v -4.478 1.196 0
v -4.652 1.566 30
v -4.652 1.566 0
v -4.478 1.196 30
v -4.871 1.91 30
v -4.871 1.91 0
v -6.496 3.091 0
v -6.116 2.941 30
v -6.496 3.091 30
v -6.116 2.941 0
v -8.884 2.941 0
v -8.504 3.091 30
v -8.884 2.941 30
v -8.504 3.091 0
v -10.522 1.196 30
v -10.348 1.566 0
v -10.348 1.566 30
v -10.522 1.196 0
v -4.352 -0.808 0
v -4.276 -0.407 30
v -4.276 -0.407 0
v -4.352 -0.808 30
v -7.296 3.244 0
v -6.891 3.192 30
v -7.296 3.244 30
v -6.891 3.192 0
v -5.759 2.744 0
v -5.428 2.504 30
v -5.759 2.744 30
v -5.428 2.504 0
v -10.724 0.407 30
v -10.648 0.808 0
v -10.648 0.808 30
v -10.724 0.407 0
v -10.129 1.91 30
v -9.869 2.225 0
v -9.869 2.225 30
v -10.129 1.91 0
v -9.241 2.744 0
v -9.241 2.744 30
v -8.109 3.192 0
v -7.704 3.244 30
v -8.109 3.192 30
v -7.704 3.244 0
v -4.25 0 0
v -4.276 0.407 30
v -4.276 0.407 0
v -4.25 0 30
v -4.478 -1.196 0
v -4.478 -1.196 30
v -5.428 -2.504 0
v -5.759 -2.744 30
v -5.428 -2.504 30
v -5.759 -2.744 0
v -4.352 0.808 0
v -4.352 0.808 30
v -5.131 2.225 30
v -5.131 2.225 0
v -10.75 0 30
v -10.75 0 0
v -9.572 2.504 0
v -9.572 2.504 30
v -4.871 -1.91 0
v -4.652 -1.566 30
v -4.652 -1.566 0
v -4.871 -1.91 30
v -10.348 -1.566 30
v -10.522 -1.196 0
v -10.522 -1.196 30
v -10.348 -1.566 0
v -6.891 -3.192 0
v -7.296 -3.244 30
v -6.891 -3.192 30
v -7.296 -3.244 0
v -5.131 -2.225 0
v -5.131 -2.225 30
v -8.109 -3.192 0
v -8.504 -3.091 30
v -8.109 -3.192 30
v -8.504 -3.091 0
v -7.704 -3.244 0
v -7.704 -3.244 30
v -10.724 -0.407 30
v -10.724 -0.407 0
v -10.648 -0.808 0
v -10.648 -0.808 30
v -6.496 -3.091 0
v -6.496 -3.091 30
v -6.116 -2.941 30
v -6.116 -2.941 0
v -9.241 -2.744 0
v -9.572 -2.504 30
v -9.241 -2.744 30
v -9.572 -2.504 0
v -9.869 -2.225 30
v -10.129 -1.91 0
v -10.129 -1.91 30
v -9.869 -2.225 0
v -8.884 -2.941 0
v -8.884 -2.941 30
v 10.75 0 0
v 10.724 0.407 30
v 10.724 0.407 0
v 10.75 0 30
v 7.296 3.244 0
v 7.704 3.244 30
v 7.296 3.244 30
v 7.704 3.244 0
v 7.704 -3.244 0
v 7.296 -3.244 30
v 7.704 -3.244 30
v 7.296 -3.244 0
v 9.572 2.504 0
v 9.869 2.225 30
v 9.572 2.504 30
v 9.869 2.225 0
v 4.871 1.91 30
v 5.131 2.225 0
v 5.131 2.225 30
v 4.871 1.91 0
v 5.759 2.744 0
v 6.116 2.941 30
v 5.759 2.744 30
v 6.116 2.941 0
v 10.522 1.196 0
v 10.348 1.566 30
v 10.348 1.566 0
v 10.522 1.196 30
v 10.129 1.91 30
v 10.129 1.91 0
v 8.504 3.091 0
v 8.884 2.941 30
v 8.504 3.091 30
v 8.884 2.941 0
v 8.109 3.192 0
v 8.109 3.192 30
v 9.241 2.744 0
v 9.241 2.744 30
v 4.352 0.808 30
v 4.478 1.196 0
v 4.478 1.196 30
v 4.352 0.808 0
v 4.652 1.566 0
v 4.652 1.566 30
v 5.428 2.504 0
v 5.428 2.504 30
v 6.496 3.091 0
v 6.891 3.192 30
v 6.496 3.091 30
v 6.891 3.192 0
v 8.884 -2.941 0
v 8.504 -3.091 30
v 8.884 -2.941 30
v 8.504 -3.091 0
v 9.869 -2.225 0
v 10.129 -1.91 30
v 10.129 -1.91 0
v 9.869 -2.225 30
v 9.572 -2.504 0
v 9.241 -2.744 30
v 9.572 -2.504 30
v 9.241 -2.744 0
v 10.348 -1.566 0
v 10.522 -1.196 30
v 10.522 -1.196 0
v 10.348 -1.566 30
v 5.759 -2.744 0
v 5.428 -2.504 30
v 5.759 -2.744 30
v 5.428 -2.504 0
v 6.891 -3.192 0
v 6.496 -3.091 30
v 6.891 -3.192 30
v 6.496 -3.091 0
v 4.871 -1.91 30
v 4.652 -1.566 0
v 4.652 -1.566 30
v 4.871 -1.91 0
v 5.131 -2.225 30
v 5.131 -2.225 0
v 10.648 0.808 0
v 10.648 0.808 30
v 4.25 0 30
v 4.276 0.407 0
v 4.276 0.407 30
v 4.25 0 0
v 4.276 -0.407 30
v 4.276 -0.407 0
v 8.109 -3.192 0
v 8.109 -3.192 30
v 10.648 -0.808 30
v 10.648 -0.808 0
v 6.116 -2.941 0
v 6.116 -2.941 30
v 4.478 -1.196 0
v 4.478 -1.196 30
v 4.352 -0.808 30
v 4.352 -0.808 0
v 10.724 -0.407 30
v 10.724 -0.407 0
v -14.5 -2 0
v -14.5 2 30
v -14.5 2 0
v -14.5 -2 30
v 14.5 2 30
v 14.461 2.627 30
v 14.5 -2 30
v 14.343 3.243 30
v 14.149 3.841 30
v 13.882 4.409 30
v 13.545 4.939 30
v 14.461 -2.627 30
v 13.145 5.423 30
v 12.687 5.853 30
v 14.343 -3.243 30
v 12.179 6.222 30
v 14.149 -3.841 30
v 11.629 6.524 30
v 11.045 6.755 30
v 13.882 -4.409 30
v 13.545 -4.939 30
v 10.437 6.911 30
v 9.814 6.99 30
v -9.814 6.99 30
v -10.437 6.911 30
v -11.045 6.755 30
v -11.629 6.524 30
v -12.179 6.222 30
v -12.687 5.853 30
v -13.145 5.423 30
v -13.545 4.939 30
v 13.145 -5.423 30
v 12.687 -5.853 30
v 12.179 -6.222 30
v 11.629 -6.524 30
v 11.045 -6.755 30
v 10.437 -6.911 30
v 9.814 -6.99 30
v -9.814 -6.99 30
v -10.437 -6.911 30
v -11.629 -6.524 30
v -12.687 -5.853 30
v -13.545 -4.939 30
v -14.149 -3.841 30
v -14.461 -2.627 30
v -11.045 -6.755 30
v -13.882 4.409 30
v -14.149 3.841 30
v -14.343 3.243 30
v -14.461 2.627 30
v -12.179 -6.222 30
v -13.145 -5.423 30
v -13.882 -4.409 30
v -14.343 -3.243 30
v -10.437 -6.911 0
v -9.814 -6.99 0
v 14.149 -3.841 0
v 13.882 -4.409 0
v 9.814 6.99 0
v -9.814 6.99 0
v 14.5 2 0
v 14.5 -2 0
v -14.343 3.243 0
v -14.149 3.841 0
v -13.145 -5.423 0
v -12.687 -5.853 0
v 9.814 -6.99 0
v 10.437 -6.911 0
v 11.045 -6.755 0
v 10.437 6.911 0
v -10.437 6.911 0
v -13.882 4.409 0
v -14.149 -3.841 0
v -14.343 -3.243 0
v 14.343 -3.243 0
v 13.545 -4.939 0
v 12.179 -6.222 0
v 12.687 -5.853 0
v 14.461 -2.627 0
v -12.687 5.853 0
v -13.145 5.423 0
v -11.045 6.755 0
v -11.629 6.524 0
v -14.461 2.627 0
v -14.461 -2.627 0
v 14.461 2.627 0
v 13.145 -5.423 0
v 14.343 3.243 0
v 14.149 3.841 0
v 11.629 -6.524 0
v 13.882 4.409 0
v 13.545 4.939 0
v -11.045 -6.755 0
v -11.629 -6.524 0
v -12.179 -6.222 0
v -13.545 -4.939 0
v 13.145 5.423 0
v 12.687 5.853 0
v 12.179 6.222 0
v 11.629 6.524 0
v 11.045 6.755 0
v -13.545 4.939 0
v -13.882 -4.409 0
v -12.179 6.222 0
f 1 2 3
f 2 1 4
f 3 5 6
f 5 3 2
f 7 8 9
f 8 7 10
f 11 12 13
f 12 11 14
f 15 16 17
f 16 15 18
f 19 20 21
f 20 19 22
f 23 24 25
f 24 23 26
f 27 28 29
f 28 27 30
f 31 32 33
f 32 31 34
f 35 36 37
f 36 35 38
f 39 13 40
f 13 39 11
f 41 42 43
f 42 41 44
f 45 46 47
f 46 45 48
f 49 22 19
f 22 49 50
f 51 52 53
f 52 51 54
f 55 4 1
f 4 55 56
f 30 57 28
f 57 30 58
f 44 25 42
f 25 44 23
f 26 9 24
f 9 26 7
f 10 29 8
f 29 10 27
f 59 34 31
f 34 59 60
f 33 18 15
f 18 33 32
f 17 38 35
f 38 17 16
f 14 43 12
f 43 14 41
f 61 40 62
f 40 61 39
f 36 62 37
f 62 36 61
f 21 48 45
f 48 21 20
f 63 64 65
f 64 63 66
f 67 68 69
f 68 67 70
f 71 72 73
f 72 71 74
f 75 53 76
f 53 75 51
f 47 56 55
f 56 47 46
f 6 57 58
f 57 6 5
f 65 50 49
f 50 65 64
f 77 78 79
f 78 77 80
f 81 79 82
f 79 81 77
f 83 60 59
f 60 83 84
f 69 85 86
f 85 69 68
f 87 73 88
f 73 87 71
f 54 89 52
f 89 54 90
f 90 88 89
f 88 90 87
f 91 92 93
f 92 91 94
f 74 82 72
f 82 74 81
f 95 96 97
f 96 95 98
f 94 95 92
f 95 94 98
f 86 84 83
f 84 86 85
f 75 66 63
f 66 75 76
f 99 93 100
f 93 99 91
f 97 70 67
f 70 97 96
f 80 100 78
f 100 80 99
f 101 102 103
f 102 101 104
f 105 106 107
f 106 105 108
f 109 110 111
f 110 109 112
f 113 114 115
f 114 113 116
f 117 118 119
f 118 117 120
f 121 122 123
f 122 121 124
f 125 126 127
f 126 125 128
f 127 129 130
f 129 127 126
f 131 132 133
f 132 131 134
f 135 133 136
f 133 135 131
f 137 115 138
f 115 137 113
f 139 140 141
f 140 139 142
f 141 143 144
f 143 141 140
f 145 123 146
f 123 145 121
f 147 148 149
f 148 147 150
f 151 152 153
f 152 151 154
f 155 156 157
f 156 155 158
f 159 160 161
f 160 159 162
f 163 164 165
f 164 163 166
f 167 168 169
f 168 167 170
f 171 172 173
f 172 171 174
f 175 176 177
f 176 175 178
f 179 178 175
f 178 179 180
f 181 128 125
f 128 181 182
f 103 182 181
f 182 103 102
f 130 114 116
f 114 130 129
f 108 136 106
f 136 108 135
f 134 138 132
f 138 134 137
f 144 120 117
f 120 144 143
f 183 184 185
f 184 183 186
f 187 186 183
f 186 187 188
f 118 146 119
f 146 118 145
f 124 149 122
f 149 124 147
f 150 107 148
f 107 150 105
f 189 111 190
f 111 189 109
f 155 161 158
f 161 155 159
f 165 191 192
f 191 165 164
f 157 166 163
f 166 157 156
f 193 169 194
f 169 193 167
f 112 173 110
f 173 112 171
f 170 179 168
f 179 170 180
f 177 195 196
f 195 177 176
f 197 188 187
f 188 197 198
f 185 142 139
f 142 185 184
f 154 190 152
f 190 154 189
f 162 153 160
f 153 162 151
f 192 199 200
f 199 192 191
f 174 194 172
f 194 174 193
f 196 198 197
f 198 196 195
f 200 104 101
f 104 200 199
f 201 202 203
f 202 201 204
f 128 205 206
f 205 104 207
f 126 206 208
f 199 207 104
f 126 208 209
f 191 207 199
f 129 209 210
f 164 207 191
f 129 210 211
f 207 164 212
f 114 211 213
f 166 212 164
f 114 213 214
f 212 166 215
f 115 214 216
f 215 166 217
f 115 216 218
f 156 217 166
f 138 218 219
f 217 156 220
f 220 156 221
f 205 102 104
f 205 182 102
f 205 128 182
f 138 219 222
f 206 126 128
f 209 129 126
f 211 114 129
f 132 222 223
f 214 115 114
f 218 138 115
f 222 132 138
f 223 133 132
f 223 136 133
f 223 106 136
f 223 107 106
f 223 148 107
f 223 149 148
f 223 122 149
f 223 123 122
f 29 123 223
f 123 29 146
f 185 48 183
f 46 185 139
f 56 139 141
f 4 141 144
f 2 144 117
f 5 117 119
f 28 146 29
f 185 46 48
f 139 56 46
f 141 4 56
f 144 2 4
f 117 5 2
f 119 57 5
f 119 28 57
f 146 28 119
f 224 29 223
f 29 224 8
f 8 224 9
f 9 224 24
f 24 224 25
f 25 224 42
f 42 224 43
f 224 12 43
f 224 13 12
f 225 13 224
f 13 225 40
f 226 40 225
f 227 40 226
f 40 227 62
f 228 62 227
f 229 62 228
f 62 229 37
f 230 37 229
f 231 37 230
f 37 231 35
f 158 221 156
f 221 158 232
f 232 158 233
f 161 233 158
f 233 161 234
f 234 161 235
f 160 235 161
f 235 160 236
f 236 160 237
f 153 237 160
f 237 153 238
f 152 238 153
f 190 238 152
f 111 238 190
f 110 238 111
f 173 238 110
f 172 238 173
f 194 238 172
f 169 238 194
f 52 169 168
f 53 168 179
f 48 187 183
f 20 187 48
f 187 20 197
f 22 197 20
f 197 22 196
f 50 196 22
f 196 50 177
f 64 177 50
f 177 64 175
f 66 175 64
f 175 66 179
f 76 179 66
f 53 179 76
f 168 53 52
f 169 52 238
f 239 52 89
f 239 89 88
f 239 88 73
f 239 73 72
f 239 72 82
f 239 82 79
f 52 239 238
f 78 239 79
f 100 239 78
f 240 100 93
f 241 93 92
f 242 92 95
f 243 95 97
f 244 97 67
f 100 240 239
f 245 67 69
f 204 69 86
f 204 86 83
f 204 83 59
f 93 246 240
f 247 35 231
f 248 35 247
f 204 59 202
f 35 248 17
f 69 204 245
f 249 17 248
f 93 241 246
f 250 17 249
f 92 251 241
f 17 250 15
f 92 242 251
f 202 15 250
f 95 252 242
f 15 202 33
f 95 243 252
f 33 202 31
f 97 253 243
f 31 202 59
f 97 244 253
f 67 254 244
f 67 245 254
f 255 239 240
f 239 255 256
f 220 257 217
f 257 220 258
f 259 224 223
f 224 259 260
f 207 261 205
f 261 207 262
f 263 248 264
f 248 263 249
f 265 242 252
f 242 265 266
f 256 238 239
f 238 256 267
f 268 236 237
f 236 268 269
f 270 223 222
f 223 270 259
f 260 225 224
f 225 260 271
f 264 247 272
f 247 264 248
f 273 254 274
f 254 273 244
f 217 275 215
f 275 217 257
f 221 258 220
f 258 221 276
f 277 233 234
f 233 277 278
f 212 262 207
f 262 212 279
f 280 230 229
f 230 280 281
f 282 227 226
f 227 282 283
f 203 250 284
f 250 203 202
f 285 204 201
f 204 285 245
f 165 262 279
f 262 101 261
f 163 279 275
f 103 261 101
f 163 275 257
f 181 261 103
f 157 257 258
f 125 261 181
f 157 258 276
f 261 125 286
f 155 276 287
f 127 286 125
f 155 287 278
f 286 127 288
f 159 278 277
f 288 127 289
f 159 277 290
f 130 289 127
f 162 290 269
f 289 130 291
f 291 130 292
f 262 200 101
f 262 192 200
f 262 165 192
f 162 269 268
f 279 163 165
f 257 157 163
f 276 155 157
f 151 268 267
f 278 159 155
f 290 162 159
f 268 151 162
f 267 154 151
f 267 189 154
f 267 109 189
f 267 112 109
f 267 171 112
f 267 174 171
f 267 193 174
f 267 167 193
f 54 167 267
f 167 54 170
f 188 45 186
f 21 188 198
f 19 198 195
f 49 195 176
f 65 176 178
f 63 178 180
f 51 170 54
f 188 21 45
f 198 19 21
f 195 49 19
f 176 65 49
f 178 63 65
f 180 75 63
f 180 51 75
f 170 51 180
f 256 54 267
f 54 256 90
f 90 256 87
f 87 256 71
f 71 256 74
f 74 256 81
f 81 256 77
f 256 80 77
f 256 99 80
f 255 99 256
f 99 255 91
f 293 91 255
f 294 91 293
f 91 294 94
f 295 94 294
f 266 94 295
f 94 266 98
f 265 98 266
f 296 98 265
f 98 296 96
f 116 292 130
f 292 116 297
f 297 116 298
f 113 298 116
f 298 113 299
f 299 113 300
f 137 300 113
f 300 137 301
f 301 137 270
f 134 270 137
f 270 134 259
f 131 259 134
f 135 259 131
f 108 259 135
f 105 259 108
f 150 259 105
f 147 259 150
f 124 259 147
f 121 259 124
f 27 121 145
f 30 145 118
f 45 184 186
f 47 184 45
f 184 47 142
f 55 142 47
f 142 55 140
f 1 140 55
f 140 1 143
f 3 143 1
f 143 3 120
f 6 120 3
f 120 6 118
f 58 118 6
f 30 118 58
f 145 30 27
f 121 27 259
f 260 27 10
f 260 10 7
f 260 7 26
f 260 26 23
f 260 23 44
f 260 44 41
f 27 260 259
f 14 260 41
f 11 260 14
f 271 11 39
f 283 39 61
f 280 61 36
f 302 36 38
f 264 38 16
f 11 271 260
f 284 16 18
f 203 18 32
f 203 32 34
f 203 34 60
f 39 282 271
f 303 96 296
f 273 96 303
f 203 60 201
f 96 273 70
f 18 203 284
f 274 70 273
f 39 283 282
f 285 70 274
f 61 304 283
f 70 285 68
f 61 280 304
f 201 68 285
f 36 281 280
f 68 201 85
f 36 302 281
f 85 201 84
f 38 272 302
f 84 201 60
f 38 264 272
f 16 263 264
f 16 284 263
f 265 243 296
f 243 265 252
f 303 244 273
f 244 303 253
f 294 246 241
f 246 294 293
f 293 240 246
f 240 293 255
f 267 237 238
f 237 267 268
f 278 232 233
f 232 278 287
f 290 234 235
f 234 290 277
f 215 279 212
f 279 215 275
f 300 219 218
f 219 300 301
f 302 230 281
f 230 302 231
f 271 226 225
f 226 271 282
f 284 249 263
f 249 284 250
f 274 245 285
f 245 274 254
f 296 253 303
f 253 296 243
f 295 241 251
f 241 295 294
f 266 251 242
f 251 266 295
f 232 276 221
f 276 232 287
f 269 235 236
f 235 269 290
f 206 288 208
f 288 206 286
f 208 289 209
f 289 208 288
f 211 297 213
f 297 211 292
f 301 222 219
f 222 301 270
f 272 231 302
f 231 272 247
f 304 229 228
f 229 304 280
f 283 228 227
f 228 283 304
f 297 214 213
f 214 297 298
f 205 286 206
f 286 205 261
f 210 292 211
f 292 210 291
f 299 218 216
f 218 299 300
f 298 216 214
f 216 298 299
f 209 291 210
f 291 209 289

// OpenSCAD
$fn = 50;


difference() {
	union() {
		hull() {
			translate(v = [-9.5000000000, 2.0000000000, 0]) {
				cylinder(h = 30, r = 5);
			}
			translate(v = [9.5000000000, 2.0000000000, 0]) {
				cylinder(h = 30, r = 5);
			}
			translate(v = [-9.5000000000, -2.0000000000, 0]) {
				cylinder(h = 30, r = 5);
			}
			translate(v = [9.5000000000, -2.0000000000, 0]) {
				cylinder(h = 30, r = 5);
			}
		}
	}
	union() {
		translate(v = [-7.5000000000, 0.0000000000, -100.0000000000]) {
			cylinder(h = 200, r = 3.2500000000);
		}
		translate(v = [7.5000000000, 0.0000000000, -100.0000000000]) {
			cylinder(h = 200, r = 3.2500000000);
		}
	}
}
